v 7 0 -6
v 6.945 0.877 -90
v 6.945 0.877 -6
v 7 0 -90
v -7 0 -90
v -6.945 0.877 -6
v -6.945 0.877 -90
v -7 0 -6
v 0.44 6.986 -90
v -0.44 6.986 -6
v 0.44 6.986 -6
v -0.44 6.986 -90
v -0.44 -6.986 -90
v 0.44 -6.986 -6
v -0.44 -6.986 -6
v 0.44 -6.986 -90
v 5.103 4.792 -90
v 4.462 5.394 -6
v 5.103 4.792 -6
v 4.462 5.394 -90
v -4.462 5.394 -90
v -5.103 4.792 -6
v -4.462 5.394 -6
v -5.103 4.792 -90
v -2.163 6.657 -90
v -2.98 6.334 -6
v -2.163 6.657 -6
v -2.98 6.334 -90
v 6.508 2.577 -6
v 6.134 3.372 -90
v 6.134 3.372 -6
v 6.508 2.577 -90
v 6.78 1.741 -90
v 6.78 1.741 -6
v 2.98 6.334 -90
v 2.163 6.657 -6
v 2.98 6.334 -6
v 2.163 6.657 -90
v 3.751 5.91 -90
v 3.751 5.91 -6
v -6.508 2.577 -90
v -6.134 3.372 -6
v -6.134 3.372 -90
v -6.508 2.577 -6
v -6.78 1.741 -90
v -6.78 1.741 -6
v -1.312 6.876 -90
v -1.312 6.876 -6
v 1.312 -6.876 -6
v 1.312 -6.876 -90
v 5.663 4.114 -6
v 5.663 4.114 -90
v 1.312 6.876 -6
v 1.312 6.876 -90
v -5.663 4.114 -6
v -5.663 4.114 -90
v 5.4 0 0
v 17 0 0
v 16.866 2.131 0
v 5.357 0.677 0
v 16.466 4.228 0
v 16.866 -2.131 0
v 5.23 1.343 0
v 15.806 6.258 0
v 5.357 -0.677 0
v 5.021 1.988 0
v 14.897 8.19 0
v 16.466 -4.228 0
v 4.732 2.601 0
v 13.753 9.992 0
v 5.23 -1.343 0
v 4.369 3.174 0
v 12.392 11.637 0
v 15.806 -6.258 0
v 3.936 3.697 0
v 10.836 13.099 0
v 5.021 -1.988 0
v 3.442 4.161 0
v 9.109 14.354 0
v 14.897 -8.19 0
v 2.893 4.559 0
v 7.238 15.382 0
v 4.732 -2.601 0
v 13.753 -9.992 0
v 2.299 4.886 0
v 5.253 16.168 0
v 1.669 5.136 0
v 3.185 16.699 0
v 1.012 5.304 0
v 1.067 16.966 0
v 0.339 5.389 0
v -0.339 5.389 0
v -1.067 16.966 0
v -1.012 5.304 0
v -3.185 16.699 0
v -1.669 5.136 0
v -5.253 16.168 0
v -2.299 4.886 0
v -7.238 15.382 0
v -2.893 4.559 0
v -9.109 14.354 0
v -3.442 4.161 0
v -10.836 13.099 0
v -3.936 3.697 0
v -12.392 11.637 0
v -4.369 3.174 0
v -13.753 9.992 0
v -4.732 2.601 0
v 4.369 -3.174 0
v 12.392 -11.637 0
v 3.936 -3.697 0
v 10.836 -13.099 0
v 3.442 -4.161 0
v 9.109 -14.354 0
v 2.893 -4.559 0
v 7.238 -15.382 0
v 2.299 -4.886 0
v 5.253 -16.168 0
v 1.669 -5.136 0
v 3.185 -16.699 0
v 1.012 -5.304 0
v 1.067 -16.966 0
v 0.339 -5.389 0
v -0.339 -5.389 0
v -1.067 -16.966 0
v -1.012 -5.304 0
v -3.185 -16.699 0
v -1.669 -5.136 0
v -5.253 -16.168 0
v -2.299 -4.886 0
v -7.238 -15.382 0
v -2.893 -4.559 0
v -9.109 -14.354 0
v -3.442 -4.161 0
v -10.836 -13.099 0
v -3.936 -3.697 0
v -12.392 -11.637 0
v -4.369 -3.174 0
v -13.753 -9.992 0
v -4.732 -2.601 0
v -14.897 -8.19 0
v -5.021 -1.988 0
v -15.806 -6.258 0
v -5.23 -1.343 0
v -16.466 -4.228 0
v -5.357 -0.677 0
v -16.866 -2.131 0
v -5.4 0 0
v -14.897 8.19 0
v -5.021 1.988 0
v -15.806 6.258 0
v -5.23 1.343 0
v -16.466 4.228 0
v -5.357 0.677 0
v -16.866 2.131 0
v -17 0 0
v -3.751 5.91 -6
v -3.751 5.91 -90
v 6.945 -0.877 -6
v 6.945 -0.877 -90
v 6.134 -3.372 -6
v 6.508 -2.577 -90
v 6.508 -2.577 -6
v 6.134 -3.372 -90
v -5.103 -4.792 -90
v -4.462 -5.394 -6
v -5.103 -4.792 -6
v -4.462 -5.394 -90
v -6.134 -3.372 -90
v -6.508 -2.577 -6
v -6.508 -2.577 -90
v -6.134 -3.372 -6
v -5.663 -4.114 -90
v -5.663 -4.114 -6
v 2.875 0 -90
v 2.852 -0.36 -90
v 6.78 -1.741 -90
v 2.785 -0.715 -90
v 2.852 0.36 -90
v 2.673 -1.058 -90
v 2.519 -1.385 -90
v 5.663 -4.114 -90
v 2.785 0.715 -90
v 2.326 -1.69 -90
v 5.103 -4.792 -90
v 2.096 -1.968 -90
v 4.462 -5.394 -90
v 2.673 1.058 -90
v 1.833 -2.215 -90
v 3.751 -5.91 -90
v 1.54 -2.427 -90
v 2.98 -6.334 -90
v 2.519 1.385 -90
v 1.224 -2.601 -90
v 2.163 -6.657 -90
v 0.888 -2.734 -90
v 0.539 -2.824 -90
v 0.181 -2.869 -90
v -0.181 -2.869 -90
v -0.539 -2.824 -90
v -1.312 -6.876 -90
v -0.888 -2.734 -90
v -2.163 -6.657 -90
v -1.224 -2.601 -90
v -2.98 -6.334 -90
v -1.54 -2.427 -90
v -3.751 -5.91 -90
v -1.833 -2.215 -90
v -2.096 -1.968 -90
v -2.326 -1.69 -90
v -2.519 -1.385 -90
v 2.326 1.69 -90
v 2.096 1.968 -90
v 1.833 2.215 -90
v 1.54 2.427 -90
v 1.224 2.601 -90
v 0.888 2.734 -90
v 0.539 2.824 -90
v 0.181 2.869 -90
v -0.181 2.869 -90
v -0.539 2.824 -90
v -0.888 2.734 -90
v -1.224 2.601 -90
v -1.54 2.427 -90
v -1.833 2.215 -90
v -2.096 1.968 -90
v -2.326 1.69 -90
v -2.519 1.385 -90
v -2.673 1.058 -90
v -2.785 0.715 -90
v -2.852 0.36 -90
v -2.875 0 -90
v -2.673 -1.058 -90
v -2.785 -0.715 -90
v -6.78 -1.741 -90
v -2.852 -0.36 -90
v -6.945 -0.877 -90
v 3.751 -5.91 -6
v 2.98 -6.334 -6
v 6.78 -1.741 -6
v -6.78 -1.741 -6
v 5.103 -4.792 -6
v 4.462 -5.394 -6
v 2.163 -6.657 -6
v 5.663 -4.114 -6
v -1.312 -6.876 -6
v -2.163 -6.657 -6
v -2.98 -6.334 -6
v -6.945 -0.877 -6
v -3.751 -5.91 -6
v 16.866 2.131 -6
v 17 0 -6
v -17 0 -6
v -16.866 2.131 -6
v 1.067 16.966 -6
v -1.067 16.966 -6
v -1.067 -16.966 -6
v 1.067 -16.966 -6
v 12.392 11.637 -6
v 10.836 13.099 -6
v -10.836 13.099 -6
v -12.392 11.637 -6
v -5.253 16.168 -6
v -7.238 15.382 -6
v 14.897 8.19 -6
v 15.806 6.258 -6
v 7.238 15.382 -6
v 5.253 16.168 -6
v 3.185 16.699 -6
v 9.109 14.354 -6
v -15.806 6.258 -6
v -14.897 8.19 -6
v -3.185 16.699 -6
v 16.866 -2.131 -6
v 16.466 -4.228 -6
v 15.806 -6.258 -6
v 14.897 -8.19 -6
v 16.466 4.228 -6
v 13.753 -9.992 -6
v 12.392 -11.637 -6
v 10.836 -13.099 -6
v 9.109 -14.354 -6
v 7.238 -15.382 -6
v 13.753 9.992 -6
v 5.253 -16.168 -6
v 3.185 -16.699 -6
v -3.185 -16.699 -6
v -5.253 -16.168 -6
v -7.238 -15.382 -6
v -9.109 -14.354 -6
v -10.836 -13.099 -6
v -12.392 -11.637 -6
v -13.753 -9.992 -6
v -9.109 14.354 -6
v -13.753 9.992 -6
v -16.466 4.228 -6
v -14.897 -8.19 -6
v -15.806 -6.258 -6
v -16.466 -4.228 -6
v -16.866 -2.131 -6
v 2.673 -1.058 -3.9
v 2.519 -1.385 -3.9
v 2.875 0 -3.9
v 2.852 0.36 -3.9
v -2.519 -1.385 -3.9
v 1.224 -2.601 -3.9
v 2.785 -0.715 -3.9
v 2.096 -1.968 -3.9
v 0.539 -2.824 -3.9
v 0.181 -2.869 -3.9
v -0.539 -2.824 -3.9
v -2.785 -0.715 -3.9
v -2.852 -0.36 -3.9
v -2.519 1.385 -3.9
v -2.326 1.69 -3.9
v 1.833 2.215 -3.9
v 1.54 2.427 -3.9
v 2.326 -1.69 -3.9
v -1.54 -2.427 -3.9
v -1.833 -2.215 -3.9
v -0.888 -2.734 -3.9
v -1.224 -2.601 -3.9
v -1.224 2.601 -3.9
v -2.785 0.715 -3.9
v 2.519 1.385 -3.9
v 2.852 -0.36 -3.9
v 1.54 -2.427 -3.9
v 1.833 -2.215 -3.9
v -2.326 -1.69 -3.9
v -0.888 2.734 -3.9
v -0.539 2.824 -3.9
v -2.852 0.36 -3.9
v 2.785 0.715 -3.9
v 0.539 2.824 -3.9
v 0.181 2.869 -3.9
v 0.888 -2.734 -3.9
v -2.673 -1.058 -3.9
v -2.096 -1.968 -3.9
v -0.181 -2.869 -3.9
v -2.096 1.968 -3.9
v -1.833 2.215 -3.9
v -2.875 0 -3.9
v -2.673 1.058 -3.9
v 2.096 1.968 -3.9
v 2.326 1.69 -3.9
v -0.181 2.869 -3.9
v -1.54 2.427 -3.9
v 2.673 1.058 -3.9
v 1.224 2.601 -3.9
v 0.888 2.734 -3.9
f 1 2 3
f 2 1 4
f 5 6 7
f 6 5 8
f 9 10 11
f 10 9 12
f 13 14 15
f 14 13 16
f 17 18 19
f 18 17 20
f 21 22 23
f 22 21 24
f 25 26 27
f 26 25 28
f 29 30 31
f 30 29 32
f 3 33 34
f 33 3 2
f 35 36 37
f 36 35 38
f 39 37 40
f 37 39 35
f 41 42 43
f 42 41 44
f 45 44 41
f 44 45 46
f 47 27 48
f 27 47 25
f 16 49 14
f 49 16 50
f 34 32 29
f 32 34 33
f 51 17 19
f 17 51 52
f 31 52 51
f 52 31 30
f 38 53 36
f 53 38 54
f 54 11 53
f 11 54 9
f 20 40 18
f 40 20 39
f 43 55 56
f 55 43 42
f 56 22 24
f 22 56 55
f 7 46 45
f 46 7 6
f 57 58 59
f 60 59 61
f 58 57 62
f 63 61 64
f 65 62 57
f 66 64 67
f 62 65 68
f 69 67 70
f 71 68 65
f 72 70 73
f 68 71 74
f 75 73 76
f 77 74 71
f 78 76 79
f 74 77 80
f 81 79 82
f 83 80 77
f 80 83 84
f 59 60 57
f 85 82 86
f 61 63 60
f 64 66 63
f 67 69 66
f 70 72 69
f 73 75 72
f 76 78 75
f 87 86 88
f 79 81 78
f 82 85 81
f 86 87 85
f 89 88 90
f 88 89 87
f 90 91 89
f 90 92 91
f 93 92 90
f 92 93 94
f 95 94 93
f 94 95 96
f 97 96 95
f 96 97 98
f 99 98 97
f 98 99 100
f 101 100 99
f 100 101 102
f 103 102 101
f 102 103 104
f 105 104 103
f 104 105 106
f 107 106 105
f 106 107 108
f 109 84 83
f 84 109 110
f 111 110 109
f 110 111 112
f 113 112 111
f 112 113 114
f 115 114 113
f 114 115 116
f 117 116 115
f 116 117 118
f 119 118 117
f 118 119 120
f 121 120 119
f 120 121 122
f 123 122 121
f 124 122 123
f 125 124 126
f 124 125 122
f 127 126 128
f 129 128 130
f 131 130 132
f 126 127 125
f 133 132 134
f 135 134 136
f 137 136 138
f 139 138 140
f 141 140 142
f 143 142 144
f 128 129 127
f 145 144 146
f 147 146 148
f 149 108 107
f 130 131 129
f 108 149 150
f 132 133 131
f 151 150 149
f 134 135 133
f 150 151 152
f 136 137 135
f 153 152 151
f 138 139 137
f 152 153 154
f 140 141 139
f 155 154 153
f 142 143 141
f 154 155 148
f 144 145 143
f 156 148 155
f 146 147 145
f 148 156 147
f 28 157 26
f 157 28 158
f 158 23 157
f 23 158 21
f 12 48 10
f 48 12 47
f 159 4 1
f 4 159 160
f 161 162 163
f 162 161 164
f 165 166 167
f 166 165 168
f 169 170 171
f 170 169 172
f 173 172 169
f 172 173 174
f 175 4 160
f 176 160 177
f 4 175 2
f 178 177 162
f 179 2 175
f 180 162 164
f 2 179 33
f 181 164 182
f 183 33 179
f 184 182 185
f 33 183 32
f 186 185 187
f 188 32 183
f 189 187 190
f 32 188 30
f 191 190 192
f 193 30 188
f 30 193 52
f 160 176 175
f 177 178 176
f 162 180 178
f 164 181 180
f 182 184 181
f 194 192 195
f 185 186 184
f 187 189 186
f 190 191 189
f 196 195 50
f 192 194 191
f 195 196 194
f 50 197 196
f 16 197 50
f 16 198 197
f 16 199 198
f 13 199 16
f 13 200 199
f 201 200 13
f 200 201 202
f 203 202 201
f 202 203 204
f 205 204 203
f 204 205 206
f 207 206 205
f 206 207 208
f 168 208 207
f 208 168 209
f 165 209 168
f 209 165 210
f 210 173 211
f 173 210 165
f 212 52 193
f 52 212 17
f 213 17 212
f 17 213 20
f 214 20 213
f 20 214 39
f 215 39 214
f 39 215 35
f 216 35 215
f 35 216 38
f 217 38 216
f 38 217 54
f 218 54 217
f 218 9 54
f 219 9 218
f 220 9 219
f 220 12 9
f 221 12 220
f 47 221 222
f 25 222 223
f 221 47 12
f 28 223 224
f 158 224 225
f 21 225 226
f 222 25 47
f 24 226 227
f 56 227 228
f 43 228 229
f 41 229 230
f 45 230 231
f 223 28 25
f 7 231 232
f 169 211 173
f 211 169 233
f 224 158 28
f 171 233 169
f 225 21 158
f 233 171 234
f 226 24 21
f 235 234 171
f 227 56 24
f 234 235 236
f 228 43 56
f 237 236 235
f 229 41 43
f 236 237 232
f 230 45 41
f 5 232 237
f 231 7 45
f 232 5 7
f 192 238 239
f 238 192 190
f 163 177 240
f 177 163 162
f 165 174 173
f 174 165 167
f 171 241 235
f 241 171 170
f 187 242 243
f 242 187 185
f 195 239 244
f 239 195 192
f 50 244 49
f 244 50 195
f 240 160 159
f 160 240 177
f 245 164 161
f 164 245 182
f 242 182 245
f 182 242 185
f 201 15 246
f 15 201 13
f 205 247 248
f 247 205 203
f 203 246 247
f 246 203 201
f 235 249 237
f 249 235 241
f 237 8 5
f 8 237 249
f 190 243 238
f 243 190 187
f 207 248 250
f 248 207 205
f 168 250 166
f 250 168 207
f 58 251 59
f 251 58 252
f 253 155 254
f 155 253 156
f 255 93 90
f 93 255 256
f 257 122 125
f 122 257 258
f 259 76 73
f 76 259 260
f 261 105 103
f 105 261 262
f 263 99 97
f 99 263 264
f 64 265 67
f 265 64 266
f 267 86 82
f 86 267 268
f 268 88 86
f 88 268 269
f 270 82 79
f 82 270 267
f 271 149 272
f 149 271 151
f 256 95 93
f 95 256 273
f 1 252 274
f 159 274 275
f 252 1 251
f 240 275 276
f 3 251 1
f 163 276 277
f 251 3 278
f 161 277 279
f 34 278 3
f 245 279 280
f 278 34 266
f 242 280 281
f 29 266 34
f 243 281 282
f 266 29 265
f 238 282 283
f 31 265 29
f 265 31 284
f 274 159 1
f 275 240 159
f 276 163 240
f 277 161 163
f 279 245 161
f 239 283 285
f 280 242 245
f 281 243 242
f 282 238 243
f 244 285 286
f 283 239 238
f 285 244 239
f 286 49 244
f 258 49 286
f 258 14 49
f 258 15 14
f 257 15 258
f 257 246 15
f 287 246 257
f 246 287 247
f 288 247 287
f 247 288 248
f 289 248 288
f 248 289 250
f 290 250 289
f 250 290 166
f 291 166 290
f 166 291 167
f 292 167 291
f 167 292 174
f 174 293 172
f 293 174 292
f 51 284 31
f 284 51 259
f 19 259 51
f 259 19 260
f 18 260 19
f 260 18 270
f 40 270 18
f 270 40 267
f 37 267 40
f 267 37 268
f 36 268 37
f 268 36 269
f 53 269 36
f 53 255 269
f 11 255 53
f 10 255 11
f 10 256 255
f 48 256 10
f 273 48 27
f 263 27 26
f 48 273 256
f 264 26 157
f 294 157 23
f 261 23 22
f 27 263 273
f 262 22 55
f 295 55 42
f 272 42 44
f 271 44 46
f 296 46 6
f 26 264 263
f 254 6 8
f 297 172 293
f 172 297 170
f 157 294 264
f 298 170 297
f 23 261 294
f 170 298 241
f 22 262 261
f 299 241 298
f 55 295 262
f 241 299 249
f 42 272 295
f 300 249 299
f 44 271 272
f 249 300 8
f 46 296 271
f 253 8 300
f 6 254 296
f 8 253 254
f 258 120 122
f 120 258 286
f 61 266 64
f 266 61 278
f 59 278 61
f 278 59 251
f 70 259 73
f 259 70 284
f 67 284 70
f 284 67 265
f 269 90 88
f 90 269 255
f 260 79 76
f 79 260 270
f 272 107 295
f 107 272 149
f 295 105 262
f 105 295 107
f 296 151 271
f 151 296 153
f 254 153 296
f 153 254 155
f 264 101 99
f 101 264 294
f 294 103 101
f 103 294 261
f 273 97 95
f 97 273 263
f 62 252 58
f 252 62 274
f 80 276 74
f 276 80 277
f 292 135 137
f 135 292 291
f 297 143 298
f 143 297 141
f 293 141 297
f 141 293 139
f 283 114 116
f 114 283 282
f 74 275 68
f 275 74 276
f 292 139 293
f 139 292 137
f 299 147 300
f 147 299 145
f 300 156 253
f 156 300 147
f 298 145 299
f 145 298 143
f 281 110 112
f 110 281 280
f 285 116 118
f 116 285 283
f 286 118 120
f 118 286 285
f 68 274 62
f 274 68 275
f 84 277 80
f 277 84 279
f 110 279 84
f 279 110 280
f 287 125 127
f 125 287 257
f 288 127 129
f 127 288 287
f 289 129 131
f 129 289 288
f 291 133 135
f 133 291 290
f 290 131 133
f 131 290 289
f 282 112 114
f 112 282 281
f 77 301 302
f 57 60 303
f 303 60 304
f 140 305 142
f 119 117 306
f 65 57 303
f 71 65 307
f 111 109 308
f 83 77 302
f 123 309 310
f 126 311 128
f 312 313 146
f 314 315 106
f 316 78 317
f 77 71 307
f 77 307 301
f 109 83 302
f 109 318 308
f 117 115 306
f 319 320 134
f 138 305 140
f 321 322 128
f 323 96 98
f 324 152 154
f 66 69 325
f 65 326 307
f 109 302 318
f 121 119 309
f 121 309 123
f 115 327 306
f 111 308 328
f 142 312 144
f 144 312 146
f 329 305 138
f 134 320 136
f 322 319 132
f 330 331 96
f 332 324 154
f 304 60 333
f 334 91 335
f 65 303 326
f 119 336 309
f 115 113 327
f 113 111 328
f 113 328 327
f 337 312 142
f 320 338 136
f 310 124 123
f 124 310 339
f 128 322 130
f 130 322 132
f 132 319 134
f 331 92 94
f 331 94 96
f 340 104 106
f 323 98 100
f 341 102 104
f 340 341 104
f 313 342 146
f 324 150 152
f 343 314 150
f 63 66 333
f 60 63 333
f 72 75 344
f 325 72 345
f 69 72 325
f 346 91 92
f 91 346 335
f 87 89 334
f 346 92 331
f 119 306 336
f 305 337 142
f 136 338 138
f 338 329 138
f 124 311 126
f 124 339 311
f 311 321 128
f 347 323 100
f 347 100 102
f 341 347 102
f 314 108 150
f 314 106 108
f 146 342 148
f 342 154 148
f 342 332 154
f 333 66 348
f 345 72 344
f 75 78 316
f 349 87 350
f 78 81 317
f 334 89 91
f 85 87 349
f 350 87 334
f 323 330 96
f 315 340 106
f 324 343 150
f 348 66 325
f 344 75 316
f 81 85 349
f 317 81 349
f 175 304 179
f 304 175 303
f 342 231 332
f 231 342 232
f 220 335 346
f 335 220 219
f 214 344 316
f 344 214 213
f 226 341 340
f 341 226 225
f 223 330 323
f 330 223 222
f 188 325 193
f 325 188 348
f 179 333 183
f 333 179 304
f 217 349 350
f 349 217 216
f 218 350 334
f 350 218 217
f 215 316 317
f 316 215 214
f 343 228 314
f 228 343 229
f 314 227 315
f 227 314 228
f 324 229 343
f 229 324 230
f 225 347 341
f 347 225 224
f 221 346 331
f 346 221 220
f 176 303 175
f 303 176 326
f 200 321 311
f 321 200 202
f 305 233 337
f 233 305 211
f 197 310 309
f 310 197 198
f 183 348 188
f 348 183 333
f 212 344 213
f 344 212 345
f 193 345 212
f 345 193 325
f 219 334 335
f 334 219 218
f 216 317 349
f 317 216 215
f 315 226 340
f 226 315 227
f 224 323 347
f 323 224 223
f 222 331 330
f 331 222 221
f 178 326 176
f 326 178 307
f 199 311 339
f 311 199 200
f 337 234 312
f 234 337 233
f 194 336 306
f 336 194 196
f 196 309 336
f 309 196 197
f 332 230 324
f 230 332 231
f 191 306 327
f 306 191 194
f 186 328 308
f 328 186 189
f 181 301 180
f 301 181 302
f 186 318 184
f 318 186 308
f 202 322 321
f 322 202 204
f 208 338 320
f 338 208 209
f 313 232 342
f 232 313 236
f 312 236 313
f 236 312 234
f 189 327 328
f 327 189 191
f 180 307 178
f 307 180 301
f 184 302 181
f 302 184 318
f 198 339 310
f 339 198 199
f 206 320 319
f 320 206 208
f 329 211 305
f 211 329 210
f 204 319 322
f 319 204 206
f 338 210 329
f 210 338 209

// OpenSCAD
$fn = 50;


difference() {
	union() {
		translate(v = [0, 0, -90.0000000000]) {
			cylinder(h = 90, r = 7.0000000000);
		}
		translate(v = [0, 0, -6.0000000000]) {
			cylinder(h = 6, r = 17.0000000000);
		}
	}
	union() {
		translate(v = [0, 0, 0]) {
			rotate(a = [0, 0, 0]) {
				difference() {
					union() {
						#translate(v = [0, 0, -90.0000000000]) {
							cylinder(h = 90, r = 2.6000000000);
						}
						#translate(v = [0, 0, -3.9000000000]) {
							cylinder(h = 3.9000000000, r1 = 2.8750000000, r2 = 5.4000000000);
						}
						#translate(v = [0, 0, -90.0000000000]) {
							cylinder(h = 90, r = 2.8750000000);
						}
						#translate(v = [0, 0, -90.0000000000]) {
							cylinder(h = 90, r = 2.6000000000);
						}
					}
					union();
				}
			}
		}
	}
}
